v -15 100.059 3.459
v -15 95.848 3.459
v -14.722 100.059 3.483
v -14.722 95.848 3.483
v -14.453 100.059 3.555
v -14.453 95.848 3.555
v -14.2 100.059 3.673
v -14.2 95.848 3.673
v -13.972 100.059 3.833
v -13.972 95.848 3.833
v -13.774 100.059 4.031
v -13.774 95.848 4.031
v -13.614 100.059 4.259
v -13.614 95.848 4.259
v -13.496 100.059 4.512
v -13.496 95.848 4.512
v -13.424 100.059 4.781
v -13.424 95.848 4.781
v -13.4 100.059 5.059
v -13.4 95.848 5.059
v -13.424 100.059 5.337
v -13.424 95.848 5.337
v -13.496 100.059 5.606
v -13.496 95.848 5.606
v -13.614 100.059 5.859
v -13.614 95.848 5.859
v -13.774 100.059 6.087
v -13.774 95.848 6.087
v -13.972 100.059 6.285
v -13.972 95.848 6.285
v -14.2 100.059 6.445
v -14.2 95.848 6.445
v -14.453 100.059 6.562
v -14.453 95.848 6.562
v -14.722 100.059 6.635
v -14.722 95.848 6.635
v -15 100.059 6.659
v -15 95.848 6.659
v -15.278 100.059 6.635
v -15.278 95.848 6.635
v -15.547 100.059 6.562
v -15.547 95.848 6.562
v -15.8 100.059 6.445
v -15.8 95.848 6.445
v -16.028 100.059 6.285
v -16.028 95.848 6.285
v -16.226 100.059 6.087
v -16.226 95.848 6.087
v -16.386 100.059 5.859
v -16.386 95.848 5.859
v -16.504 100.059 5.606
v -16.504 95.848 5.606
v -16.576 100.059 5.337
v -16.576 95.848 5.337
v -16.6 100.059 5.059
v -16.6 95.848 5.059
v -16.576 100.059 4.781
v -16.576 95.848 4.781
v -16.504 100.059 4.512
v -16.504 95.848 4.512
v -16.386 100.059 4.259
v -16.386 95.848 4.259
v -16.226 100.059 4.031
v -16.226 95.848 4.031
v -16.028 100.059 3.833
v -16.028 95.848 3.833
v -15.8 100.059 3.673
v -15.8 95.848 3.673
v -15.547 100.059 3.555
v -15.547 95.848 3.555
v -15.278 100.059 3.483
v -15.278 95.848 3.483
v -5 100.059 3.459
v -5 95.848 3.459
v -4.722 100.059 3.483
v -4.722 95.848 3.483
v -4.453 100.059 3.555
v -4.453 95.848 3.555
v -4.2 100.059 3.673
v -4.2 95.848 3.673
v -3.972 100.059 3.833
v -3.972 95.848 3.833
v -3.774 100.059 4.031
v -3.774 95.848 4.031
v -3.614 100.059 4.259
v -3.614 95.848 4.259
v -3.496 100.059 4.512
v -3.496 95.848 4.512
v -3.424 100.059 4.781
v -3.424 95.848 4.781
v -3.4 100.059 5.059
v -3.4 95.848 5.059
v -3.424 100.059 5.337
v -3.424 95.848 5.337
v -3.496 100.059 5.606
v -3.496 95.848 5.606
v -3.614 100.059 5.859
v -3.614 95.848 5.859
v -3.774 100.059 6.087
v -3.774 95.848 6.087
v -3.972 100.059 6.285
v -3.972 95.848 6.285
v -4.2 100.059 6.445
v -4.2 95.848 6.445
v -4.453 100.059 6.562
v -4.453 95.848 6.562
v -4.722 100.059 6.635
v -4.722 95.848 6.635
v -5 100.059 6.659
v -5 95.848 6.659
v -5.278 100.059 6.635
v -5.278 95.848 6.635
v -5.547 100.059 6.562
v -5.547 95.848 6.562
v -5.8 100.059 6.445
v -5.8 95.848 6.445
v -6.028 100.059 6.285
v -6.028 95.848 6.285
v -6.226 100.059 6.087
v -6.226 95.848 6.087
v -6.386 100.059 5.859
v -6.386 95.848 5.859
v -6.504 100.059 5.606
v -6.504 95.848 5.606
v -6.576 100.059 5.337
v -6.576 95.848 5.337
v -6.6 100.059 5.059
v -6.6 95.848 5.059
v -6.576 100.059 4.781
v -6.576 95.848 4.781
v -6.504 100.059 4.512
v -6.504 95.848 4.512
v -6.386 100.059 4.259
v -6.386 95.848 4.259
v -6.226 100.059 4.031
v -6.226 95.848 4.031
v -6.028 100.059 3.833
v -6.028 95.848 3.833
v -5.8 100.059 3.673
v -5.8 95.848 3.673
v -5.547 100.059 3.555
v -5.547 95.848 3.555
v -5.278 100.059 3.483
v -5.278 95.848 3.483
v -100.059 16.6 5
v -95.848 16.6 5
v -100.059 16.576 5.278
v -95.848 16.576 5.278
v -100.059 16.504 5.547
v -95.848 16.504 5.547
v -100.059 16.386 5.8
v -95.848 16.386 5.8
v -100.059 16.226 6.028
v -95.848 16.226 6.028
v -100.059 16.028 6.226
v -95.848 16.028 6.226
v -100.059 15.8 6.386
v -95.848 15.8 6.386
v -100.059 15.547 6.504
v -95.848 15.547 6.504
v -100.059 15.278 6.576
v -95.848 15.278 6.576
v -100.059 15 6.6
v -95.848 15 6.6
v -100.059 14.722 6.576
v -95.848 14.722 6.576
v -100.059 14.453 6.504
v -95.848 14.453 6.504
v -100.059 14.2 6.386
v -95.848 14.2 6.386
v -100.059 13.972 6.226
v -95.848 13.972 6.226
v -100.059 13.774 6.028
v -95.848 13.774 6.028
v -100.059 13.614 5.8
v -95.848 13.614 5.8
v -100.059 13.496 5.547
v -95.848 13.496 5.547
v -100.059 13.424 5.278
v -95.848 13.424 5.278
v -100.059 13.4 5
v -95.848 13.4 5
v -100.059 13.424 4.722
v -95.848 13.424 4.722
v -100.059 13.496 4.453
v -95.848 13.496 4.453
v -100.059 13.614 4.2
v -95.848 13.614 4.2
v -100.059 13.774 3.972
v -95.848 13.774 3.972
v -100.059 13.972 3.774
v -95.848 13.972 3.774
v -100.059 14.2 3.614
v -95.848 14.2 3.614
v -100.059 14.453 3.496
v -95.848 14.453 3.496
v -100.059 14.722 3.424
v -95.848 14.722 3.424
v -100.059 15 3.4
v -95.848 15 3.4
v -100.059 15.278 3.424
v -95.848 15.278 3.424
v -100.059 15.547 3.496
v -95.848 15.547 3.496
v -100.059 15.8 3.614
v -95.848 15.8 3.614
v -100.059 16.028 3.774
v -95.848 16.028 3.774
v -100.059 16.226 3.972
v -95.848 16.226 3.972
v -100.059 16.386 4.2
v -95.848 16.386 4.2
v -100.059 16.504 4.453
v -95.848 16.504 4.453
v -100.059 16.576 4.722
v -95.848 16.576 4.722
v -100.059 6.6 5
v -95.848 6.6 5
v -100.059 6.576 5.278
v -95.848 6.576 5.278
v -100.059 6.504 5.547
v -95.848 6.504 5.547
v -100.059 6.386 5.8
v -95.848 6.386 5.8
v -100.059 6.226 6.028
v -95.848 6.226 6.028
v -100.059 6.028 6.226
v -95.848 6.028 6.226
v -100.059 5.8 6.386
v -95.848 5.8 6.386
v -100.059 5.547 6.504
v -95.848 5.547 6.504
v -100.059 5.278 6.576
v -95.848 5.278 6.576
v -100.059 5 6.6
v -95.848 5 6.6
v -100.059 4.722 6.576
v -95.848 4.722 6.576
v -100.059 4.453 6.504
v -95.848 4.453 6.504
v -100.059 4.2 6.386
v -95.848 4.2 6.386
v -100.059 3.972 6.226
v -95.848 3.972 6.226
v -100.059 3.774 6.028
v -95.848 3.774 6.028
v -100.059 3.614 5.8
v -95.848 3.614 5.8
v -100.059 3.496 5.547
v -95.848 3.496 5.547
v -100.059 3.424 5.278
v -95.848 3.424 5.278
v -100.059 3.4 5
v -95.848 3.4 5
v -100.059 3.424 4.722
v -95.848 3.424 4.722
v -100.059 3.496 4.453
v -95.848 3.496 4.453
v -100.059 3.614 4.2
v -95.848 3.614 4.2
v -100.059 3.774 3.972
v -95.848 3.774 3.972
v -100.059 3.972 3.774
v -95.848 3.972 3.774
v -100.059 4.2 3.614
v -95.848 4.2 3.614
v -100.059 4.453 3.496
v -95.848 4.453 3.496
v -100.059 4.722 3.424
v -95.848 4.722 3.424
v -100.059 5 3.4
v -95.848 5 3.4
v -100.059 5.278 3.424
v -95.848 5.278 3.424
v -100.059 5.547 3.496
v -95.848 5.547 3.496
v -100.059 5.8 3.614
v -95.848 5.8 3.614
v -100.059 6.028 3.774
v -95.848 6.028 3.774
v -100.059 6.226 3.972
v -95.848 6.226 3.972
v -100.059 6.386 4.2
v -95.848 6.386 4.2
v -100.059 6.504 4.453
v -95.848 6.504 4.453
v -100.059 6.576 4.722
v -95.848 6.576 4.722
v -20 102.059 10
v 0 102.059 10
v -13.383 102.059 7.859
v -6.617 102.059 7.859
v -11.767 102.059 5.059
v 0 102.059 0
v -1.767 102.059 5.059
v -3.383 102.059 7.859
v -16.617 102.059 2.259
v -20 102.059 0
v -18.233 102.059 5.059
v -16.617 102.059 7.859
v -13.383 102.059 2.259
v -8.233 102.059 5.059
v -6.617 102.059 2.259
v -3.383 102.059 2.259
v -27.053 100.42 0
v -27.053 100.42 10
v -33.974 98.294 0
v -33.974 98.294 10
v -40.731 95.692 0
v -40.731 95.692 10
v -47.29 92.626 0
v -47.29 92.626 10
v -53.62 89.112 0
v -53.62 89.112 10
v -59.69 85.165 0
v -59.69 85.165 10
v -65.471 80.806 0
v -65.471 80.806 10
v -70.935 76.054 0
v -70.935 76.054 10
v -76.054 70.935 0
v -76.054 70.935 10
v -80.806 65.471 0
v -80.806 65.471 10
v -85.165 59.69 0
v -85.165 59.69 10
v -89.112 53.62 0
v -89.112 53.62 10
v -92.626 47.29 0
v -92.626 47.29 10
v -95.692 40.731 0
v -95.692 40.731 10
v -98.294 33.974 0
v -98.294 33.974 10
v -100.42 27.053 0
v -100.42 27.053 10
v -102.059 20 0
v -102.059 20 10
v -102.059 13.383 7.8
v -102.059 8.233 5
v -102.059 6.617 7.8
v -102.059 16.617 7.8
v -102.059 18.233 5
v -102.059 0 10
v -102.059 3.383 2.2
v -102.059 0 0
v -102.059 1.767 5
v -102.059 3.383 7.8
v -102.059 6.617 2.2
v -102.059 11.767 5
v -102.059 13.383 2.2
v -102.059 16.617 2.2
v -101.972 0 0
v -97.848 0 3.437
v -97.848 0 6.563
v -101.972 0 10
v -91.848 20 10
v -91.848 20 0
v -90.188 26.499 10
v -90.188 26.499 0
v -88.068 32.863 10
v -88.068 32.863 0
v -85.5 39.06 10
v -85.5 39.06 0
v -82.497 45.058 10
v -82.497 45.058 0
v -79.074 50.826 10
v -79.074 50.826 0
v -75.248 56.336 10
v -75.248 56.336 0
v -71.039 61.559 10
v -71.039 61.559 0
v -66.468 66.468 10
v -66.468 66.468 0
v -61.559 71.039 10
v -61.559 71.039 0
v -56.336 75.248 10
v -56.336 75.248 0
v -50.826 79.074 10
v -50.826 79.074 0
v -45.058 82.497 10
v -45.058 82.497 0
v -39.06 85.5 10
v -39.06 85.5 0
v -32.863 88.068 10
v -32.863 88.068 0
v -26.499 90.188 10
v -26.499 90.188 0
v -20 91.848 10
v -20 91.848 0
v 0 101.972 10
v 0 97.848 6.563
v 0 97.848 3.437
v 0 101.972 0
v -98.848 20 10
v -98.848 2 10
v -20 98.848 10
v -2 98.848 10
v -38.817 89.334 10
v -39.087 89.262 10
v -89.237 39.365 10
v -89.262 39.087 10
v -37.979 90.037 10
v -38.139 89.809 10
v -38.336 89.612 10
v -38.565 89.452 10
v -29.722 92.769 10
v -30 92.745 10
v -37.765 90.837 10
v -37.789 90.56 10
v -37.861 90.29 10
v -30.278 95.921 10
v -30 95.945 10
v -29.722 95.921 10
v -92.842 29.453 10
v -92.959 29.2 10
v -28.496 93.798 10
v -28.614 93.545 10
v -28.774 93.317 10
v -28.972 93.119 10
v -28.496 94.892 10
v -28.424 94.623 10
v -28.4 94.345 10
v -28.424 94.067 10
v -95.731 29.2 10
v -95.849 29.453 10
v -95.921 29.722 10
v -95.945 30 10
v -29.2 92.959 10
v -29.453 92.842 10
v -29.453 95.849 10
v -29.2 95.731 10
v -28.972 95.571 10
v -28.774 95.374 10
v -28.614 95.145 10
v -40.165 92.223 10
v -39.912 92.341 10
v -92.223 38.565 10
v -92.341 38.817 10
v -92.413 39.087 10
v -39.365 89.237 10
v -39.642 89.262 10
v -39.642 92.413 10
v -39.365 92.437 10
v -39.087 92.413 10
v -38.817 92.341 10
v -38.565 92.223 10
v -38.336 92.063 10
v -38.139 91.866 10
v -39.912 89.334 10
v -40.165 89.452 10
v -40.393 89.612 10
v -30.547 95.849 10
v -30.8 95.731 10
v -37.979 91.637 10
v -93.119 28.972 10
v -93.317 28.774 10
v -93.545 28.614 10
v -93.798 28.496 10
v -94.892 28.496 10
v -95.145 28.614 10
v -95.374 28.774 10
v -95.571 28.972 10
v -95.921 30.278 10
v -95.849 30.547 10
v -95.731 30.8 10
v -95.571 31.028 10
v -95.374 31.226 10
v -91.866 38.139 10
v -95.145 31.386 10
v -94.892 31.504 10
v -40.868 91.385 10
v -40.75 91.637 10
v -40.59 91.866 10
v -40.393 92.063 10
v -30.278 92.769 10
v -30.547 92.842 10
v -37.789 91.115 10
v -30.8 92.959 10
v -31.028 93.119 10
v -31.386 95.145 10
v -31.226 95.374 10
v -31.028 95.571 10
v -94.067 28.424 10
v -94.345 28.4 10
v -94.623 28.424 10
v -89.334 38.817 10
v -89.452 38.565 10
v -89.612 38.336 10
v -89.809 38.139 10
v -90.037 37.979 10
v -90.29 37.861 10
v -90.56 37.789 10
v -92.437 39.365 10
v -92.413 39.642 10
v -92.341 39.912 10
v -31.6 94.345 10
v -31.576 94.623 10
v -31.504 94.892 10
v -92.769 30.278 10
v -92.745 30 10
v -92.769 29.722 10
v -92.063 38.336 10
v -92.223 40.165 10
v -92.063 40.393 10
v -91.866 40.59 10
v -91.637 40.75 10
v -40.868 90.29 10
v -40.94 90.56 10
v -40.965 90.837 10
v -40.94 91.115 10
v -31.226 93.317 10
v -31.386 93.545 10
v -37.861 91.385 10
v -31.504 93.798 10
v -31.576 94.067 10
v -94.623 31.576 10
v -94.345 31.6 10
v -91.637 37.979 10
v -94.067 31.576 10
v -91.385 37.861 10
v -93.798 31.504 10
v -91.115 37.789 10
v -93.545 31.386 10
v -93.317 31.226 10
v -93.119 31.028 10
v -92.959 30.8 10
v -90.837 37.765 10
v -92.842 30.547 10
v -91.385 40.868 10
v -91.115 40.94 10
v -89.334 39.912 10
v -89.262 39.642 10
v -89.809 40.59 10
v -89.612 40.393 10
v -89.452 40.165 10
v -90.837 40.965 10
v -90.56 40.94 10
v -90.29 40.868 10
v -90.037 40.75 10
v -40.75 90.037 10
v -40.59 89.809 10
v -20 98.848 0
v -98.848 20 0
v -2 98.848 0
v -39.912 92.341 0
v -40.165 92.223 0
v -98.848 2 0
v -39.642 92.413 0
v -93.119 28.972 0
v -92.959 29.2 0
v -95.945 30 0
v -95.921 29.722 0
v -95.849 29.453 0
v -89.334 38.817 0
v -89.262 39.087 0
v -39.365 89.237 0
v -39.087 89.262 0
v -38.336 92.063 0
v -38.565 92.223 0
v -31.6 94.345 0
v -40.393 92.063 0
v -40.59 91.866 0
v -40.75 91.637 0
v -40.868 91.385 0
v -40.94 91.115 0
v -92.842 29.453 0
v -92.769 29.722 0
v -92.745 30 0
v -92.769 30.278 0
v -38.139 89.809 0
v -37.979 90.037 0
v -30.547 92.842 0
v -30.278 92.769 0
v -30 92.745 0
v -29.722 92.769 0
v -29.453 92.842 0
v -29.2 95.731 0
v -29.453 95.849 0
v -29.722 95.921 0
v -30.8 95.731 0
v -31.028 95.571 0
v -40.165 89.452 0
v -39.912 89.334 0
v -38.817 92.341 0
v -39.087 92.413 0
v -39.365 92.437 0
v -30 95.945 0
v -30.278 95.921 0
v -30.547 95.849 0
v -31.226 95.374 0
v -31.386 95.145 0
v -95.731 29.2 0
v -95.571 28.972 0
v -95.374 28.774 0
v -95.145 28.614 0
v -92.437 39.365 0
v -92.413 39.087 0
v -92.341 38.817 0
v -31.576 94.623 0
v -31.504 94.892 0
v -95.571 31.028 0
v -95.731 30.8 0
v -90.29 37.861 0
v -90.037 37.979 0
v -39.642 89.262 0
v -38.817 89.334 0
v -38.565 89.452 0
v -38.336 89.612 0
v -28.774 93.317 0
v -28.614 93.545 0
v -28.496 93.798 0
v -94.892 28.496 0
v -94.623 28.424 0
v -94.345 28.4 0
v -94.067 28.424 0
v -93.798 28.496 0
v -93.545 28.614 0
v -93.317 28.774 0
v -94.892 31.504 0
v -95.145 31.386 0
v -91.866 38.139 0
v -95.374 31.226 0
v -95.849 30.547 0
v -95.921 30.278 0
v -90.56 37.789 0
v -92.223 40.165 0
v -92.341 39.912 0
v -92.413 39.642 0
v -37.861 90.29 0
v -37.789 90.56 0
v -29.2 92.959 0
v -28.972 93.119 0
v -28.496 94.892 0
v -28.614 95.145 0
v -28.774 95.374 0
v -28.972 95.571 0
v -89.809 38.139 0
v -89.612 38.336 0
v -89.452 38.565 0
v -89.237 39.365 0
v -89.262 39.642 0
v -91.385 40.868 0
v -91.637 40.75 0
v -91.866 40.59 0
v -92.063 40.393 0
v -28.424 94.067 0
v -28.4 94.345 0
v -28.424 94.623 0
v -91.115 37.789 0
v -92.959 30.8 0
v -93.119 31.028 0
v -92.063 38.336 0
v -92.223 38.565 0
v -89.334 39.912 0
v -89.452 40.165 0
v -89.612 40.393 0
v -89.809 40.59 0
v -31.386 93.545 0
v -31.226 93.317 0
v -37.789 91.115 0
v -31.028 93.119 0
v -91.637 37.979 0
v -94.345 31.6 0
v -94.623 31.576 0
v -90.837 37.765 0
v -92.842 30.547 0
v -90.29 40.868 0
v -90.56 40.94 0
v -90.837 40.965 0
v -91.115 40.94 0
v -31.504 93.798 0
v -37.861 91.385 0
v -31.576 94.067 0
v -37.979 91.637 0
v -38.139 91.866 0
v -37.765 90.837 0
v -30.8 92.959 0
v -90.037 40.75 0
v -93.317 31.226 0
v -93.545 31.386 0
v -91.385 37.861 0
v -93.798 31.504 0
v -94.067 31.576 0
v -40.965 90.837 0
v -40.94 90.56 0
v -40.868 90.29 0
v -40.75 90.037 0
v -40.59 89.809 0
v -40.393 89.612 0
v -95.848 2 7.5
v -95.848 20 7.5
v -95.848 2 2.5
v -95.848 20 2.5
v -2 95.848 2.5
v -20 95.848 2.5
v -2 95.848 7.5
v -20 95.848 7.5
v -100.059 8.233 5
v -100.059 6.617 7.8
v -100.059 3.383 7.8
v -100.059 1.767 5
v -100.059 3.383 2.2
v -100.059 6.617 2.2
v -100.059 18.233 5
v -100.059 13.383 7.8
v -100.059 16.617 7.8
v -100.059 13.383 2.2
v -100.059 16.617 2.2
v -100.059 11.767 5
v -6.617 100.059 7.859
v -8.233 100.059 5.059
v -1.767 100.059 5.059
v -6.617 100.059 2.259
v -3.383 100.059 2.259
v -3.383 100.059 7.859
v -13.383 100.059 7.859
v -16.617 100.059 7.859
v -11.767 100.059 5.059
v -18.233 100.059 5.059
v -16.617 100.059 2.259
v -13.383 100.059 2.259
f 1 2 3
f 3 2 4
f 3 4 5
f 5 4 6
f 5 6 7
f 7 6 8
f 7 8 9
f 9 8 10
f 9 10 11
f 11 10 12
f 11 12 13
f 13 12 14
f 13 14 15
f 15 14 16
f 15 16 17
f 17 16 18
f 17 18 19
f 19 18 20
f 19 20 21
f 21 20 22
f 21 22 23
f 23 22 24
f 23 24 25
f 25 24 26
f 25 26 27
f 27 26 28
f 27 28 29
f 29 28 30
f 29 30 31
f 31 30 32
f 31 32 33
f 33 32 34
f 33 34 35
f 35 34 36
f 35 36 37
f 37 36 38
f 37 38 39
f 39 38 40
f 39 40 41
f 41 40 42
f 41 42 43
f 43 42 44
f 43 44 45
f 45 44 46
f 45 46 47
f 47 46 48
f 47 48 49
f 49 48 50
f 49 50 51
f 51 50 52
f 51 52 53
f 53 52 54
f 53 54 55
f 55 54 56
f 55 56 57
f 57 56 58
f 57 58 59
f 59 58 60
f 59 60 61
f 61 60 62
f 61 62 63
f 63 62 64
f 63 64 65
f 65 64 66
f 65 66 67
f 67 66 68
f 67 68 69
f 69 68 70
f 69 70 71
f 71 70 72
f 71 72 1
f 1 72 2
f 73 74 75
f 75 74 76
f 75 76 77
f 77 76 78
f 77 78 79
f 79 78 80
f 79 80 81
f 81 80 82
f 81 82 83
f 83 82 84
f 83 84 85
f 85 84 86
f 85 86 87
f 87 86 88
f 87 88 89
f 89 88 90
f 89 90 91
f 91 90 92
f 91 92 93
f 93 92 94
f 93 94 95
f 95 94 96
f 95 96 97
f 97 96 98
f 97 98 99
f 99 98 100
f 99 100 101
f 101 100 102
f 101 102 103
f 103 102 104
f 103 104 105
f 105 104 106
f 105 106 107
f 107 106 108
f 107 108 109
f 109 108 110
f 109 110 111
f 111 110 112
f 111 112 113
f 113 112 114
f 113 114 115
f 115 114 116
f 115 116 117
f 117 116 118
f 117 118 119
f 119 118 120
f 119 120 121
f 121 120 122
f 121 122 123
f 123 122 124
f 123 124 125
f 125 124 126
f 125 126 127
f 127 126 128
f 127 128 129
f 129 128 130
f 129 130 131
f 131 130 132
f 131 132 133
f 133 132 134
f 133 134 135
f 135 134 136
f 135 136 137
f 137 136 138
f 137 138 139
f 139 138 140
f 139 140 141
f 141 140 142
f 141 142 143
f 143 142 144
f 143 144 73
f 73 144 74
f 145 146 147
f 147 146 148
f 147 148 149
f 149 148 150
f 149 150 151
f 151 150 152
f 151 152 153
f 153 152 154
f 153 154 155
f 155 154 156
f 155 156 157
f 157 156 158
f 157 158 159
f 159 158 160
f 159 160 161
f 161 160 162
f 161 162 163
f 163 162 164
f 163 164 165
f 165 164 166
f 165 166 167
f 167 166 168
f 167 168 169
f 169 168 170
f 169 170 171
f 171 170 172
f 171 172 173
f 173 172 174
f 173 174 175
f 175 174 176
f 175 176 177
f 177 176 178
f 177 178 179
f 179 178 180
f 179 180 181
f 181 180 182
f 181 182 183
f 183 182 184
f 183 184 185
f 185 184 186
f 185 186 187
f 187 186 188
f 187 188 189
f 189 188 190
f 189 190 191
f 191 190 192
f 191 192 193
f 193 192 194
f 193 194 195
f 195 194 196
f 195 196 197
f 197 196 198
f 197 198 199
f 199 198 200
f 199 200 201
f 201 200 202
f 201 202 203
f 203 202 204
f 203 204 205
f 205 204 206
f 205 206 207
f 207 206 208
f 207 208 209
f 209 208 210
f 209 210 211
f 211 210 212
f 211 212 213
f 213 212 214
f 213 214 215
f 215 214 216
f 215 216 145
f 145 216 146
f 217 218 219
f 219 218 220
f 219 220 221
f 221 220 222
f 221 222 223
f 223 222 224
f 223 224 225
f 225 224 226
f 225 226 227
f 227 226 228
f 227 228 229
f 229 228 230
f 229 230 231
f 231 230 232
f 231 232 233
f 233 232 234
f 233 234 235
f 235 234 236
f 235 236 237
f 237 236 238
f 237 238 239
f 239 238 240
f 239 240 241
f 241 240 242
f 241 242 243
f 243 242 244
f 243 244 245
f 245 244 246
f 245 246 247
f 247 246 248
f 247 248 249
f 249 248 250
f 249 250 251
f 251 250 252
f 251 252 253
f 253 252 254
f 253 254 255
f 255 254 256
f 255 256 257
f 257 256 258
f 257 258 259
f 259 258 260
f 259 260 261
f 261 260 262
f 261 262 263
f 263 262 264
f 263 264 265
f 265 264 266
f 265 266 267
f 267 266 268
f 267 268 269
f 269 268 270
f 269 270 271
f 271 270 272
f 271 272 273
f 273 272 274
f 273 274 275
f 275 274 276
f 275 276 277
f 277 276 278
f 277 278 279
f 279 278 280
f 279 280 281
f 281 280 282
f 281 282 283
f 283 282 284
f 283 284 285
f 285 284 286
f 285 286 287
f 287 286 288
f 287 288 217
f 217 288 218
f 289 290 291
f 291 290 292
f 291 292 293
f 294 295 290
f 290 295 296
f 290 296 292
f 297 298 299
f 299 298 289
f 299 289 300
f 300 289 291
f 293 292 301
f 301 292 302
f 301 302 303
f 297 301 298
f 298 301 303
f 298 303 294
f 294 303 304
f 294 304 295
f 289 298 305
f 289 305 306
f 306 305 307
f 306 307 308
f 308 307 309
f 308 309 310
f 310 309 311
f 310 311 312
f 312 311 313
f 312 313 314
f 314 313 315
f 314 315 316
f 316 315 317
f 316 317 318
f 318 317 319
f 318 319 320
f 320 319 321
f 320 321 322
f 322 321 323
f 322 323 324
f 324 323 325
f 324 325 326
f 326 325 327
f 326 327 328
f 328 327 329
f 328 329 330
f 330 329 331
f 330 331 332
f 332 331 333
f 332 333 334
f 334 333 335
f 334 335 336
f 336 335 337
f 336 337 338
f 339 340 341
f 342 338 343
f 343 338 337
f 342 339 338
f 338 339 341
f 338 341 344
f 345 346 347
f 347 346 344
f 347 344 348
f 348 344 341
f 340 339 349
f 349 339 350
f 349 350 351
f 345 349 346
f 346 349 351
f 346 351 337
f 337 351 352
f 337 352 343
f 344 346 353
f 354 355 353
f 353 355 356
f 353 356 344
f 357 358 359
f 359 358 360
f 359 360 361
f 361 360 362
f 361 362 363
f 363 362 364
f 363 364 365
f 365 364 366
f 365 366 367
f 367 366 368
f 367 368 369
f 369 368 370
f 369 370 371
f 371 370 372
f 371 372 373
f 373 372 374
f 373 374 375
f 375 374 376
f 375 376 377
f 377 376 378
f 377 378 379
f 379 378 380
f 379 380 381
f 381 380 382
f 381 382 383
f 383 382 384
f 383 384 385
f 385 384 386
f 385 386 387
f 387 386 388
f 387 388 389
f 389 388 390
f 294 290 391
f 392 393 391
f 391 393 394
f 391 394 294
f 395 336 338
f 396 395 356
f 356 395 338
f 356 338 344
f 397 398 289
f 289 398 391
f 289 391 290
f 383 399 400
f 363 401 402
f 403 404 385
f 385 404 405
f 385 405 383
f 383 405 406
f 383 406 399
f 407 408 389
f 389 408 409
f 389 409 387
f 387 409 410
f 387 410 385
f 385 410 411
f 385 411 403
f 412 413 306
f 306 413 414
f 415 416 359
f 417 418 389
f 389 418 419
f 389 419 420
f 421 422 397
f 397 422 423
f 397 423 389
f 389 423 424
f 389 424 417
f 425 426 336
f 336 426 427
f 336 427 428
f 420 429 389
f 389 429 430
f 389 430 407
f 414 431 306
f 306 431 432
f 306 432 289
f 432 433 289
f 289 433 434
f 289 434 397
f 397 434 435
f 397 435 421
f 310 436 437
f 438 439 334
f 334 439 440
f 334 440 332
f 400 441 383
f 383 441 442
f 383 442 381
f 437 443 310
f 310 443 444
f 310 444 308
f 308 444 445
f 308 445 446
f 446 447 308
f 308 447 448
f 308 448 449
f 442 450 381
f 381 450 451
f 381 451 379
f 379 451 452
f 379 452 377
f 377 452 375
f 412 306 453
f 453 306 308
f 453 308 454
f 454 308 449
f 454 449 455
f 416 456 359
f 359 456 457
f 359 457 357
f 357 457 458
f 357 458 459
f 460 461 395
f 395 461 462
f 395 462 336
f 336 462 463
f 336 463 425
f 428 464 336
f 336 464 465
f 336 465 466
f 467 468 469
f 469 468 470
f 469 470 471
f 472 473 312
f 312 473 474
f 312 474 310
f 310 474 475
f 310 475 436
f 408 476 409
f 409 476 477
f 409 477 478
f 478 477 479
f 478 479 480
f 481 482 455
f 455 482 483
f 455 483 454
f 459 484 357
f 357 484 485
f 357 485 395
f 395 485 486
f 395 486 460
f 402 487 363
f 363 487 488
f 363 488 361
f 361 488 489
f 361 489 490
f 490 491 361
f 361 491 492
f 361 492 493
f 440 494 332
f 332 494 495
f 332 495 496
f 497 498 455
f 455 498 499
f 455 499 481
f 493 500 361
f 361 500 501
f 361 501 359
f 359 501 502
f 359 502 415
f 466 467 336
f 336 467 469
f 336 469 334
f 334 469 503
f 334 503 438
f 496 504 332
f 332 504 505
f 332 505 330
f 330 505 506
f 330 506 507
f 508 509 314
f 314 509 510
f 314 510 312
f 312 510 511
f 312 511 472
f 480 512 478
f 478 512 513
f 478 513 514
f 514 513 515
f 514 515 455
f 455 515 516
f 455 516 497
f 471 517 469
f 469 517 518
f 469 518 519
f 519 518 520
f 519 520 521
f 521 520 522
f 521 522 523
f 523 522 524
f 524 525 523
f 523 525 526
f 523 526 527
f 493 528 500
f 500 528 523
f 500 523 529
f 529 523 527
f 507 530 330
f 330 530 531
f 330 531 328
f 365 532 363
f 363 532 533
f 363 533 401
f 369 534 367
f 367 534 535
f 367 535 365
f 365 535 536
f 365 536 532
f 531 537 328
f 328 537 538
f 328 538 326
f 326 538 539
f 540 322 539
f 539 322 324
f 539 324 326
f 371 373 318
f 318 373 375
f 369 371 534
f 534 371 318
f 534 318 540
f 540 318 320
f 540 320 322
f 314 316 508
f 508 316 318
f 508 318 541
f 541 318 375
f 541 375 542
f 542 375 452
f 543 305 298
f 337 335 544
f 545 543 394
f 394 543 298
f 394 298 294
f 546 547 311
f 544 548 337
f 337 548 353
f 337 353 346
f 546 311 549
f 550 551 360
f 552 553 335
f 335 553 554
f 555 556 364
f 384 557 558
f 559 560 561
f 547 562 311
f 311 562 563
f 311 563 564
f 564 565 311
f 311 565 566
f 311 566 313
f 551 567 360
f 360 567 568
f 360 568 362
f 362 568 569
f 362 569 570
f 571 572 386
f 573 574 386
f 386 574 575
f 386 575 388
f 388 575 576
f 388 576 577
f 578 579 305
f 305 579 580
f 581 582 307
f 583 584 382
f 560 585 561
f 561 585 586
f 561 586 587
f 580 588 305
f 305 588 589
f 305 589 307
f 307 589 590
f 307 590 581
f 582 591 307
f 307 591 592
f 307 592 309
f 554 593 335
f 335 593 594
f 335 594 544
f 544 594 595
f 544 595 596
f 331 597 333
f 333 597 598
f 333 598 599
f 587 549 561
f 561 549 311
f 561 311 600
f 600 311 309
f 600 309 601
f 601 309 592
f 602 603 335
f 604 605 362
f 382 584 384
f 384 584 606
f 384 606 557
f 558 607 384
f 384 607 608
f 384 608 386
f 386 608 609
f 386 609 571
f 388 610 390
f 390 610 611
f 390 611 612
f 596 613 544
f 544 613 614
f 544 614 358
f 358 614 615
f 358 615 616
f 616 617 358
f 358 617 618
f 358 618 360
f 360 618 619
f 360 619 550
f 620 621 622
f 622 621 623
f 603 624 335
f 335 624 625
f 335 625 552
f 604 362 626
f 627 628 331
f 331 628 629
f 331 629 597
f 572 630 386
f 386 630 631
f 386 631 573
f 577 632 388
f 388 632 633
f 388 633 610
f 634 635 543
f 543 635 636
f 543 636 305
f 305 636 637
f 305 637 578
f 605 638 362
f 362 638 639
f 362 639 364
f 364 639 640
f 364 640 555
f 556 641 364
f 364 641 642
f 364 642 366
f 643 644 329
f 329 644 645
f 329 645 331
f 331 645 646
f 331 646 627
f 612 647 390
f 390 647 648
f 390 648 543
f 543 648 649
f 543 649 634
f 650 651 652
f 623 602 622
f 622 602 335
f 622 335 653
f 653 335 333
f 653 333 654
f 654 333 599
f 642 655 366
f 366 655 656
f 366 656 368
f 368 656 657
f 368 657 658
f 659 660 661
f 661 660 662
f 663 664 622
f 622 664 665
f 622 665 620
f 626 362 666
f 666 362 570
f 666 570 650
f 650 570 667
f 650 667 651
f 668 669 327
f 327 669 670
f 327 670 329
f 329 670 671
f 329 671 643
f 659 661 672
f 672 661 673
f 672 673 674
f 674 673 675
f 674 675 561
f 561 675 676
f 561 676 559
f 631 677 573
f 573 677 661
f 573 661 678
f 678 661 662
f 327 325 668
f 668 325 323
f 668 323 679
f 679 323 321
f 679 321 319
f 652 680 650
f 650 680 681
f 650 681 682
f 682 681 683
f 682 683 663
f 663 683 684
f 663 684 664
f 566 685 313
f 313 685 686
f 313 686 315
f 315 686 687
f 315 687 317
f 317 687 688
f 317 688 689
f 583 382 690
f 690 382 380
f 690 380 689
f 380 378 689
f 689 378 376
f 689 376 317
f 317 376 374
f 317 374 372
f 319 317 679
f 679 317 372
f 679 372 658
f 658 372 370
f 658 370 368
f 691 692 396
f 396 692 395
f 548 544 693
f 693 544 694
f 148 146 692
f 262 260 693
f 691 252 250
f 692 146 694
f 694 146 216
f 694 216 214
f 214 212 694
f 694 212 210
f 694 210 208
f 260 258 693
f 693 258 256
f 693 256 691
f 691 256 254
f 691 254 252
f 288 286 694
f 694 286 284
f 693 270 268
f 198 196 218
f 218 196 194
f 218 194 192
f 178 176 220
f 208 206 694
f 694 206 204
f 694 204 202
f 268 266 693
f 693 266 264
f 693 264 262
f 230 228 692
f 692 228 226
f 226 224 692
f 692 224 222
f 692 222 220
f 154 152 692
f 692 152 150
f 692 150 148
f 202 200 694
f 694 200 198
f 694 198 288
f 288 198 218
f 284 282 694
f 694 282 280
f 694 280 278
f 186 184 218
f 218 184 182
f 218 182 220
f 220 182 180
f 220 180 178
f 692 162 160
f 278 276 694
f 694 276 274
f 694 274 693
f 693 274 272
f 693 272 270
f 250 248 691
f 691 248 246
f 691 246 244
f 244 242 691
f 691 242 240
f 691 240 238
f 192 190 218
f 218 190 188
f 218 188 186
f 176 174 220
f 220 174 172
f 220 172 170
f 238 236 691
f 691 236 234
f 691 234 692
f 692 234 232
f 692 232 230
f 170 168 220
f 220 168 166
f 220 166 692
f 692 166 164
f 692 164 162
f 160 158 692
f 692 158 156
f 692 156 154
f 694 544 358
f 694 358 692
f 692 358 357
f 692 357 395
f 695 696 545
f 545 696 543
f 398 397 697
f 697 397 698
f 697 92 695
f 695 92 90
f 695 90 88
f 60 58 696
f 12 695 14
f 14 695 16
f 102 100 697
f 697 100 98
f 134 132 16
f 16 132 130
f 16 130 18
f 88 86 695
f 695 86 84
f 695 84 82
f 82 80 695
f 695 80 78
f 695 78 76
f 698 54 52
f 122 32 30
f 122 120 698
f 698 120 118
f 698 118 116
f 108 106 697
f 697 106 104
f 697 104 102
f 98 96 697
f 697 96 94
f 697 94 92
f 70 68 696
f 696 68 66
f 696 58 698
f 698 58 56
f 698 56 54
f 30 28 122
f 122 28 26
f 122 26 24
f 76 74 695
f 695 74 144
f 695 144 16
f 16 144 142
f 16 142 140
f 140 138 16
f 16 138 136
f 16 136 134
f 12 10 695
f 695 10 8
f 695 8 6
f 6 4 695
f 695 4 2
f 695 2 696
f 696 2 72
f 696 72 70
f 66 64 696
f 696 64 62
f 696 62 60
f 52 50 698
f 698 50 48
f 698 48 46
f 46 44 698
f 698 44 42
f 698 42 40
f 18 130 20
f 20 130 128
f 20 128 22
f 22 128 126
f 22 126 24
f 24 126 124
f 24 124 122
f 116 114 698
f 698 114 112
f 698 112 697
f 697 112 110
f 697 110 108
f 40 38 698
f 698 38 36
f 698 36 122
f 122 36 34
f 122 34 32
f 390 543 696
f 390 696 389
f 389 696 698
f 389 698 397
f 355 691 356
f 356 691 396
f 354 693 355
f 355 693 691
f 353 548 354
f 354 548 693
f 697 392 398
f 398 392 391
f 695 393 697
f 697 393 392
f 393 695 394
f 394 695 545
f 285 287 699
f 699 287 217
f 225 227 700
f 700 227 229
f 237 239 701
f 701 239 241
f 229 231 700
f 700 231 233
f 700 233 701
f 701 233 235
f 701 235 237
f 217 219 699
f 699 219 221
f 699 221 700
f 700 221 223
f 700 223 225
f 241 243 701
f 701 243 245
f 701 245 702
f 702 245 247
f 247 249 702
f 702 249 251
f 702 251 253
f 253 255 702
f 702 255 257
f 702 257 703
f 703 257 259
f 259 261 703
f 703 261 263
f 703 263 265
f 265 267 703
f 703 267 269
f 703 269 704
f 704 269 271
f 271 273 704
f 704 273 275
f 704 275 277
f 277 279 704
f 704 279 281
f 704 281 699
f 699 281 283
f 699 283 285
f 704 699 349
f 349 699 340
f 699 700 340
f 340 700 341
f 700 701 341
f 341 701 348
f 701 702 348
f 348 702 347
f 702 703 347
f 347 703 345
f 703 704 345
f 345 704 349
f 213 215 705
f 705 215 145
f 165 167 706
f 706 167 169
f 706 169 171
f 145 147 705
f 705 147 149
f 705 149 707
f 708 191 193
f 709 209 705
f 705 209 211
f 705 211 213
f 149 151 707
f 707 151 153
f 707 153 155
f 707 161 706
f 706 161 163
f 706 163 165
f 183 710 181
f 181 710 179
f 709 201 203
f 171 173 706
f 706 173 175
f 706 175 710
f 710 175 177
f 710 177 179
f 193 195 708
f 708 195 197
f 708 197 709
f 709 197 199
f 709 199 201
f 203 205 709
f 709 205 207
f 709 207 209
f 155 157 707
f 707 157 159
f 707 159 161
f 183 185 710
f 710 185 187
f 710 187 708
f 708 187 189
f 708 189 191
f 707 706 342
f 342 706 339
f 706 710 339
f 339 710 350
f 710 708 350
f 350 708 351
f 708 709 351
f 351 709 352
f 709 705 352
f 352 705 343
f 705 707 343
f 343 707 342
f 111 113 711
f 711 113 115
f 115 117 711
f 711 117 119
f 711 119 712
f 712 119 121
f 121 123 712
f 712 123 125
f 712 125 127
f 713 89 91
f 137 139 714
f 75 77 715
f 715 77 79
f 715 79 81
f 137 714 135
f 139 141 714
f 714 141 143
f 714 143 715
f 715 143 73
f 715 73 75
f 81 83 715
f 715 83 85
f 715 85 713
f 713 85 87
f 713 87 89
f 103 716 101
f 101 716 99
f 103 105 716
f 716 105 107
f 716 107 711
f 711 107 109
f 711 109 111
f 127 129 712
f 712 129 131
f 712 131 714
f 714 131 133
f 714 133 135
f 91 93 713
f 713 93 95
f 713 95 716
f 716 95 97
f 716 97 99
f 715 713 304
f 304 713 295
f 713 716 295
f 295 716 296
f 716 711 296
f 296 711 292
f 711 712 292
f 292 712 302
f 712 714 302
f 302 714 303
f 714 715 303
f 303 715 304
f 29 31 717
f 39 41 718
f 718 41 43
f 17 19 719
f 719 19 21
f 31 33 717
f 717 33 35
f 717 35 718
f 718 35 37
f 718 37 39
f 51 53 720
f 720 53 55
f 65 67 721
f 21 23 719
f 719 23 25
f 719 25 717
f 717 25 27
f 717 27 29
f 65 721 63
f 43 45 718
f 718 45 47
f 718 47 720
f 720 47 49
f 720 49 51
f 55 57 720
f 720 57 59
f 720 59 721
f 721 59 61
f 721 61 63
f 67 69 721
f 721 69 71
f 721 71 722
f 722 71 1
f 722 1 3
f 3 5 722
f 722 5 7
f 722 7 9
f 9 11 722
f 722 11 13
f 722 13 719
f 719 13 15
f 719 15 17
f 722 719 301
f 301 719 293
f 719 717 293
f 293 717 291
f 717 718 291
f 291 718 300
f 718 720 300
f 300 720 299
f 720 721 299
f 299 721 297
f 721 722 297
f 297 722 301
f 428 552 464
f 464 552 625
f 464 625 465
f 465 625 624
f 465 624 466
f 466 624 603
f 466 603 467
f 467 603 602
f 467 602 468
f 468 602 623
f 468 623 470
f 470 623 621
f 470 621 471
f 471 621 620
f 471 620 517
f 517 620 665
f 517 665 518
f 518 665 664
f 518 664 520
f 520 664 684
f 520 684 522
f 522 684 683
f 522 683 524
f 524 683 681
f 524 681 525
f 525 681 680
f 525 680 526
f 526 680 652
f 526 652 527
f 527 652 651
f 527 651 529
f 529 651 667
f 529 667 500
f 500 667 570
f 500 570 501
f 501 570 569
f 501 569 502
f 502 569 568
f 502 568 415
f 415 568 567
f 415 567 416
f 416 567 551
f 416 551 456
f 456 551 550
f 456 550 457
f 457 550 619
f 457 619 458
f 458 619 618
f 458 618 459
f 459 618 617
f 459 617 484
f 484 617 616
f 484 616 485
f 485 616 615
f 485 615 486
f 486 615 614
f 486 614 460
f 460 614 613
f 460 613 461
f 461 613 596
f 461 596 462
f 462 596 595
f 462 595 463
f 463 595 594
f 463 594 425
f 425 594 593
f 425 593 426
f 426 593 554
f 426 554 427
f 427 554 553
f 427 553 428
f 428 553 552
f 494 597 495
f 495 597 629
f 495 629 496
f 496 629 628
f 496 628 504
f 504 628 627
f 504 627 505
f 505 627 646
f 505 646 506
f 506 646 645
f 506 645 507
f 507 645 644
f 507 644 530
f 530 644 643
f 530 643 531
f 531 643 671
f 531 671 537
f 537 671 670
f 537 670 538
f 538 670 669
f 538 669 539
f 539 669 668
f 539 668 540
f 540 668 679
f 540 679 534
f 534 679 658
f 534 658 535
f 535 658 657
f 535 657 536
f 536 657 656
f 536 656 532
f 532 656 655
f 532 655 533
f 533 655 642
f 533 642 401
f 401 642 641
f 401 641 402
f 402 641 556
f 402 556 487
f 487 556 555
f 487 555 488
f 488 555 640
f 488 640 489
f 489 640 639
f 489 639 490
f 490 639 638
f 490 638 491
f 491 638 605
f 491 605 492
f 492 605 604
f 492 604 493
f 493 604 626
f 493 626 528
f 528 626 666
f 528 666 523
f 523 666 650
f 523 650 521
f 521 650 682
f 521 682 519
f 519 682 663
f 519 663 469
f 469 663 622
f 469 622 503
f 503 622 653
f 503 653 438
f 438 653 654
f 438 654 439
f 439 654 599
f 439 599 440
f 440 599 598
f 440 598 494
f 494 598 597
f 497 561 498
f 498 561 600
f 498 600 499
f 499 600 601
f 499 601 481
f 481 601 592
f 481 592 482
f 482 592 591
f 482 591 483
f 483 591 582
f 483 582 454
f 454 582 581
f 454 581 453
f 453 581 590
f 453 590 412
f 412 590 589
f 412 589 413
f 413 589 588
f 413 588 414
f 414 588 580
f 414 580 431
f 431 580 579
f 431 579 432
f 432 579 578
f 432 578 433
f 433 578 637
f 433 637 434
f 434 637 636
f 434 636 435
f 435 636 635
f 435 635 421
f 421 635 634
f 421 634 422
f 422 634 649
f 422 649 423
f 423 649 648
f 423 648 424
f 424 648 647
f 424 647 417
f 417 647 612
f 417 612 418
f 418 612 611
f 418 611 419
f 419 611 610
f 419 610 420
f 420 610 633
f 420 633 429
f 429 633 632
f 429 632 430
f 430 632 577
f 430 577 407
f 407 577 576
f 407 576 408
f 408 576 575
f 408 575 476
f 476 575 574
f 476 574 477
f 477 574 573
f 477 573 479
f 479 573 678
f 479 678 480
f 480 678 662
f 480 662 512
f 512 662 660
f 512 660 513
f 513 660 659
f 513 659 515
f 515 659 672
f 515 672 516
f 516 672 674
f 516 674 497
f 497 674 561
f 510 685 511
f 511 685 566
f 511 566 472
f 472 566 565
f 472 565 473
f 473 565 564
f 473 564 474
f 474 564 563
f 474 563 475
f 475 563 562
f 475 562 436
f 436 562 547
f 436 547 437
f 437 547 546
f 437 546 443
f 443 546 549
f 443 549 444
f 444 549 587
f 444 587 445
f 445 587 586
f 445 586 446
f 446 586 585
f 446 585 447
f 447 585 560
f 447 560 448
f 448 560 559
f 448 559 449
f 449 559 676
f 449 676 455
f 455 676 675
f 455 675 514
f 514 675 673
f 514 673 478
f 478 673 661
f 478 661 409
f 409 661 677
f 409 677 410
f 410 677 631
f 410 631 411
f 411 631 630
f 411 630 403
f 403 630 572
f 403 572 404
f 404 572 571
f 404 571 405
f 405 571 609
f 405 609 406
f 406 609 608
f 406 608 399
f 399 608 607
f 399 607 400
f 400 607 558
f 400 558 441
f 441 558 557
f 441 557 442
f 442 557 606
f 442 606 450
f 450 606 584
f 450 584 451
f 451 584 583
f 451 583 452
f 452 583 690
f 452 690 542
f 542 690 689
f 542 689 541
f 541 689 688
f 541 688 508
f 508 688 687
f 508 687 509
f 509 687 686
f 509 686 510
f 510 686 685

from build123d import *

# Parameters (mm, degrees)
BOSS_EXTRU_1_DEPTH      = 10
ENL_V_MAT_EXTRU_1_DEPTH = 20
ENL_V_MAT_EXTRU_2_DEPTH = 20
ESQUISSE5_R             = 1.6
ENL_V_MAT_EXTRU_3_DEPTH = 20
ESQUISSE6_R             = 1.6
ENL_V_MAT_EXTRU_4_DEPTH = 20
CHANFREIN1_SIZE         = 2
ENL_V_MAT_EXTRU_5_DEPTH = 2
ENL_V_MAT_EXTRU_6_DEPTH = 2
ESQUISSE9_R             = 1.6
ENL_V_MAT_EXTRU_7_DEPTH = 10


with BuildPart() as part:
    # Esquisse1 → Boss.-Extru.1 (new body)
    with BuildSketch(Plane.XY):
        with BuildLine():
            Line((-20, 102.058806577), (0, 102.058806577))
            Line((0, 102.058806577), (0, 91.847700026))
            Line((0, 91.847700026), (-20, 91.847700026))
            ThreePointArc((-20, 91.847700026), (-66.468037432, 66.468037432), (-91.847700026, 20))
            Line((-91.847700026, 20), (-91.847700026, 0))
            Line((-91.847700026, 0), (-102.058806577, 0))
            Line((-102.058806577, 0), (-102.058806577, 20))
            ThreePointArc((-102.058806577, 20), (-73.539105243, 73.539105243), (-20, 102.058806577))
        make_face()
    extrude(amount=BOSS_EXTRU_1_DEPTH)

    # Esquisse2 → Enlèv. mat.-Extru.1 (cut)
    with BuildSketch(Plane.XZ):
        Polygon((-98.847700026, 10), (-91.847700026, 10), (-91.847700026, 0), (-98.847700026, 0), (-95.847700026, 2.5), (-95.847700026, 7.5), align=None)
    extrude(amount=-ENL_V_MAT_EXTRU_1_DEPTH, mode=Mode.SUBTRACT)

    # Esquisse4 → Enlèv. mat.-Extru.2 (cut)
    with BuildSketch(Plane(origin=(0, 0, 0), x_dir=(0, 0, -1), z_dir=(1, 0, 0))):
        Polygon((0, 98.847700026), (0, 91.847700026), (-10, 91.847700026), (-10, 98.847700026), (-7.5, 95.847700026), (-2.5, 95.847700026), align=None)
    extrude(amount=-ENL_V_MAT_EXTRU_2_DEPTH, mode=Mode.SUBTRACT)

    # Esquisse5 → Enlèv. mat.-Extru.3 (cut)
    with BuildSketch(Plane(origin=(-95.847700026, 0, 0), x_dir=(0, 0, -1), z_dir=(1, 0, 0))):
        with Locations(Location((-5, 5, 0), (0, 0, 90))):
            Circle(ESQUISSE5_R)
        with Locations(Location((-5, 15, 0), (0, 0, 90))):
            Circle(ESQUISSE5_R)
    extrude(amount=-ENL_V_MAT_EXTRU_3_DEPTH, mode=Mode.SUBTRACT)

    # Esquisse6 → Enlèv. mat.-Extru.4 (cut)
    with BuildSketch(Plane.XZ.offset(-95.847700026)):
        with Locations(Location((-5, 5.05896145, 0), (0, 0, 270))):
            Circle(ESQUISSE6_R)
        with Locations(Location((-15, 5.05896145, 0), (0, 0, 270))):
            Circle(ESQUISSE6_R)
    extrude(amount=-ENL_V_MAT_EXTRU_4_DEPTH, mode=Mode.SUBTRACT)

    # Chanfrein1
    chanfrein1_edges = [part.edges().sort_by_distance(p)[0] for p in [
        (-97.347700026, 0, 8.75),
        (-95.847700026, 0, 5),
        (-97.347700026, 0, 1.25),
        (0, 97.347700026, 1.25),
        (0, 95.847700026, 5),
        (0, 97.347700026, 8.75),
    ]]
    chamfer(chanfrein1_edges, length=CHANFREIN1_SIZE)

    # Esquisse7 → Enlèv. mat.-Extru.5 (cut)
    with BuildSketch(Plane.ZY.offset(102.058806577)):
        Polygon((2.2, 6.616580754), (2.2, 3.383419246), (5, 1.766838493), (7.8, 3.383419246), (7.8, 6.616580754), (5, 8.233161507), align=None)
        Polygon((7.8, 16.616580754), (5, 18.233161507), (2.2, 16.616580754), (2.2, 13.383419246), (5, 11.766838493), (7.8, 13.383419246), align=None)
    extrude(amount=-ENL_V_MAT_EXTRU_5_DEPTH, mode=Mode.SUBTRACT)

    # Esquisse8 → Enlèv. mat.-Extru.6 (cut)
    with BuildSketch(Plane(origin=(0, 102.058806577, 0), x_dir=(1, 0, 0), z_dir=(0, 1, 0))):
        Polygon((-3.383419246, -2.25896145), (-6.616580754, -2.25896145), (-8.233161507, -5.05896145), (-6.616580754, -7.85896145), (-3.383419246, -7.85896145), (-1.766838493, -5.05896145), align=None)
        Polygon((-13.383419246, -2.25896145), (-16.616580754, -2.25896145), (-18.233161507, -5.05896145), (-16.616580754, -7.85896145), (-13.383419246, -7.85896145), (-11.766838493, -5.05896145), align=None)
    extrude(amount=-ENL_V_MAT_EXTRU_6_DEPTH, mode=Mode.SUBTRACT)

    # Esquisse9 → Enlèv. mat.-Extru.7 (cut)
    with BuildSketch(Plane(origin=(0, 0, 0), x_dir=(-1, 0, 0), z_dir=(0, 0, -1))):
        with Locations((94.345111161, 30)):
            Circle(ESQUISSE9_R)
        with Locations((90.837371891, 39.364601711)):
            Circle(ESQUISSE9_R)
        with Locations((30, 94.345111161)):
            Circle(ESQUISSE9_R)
        with Locations((39.364601711, 90.837371891)):
            Circle(ESQUISSE9_R)
    extrude(amount=-ENL_V_MAT_EXTRU_7_DEPTH, mode=Mode.SUBTRACT)


solid = part.part
